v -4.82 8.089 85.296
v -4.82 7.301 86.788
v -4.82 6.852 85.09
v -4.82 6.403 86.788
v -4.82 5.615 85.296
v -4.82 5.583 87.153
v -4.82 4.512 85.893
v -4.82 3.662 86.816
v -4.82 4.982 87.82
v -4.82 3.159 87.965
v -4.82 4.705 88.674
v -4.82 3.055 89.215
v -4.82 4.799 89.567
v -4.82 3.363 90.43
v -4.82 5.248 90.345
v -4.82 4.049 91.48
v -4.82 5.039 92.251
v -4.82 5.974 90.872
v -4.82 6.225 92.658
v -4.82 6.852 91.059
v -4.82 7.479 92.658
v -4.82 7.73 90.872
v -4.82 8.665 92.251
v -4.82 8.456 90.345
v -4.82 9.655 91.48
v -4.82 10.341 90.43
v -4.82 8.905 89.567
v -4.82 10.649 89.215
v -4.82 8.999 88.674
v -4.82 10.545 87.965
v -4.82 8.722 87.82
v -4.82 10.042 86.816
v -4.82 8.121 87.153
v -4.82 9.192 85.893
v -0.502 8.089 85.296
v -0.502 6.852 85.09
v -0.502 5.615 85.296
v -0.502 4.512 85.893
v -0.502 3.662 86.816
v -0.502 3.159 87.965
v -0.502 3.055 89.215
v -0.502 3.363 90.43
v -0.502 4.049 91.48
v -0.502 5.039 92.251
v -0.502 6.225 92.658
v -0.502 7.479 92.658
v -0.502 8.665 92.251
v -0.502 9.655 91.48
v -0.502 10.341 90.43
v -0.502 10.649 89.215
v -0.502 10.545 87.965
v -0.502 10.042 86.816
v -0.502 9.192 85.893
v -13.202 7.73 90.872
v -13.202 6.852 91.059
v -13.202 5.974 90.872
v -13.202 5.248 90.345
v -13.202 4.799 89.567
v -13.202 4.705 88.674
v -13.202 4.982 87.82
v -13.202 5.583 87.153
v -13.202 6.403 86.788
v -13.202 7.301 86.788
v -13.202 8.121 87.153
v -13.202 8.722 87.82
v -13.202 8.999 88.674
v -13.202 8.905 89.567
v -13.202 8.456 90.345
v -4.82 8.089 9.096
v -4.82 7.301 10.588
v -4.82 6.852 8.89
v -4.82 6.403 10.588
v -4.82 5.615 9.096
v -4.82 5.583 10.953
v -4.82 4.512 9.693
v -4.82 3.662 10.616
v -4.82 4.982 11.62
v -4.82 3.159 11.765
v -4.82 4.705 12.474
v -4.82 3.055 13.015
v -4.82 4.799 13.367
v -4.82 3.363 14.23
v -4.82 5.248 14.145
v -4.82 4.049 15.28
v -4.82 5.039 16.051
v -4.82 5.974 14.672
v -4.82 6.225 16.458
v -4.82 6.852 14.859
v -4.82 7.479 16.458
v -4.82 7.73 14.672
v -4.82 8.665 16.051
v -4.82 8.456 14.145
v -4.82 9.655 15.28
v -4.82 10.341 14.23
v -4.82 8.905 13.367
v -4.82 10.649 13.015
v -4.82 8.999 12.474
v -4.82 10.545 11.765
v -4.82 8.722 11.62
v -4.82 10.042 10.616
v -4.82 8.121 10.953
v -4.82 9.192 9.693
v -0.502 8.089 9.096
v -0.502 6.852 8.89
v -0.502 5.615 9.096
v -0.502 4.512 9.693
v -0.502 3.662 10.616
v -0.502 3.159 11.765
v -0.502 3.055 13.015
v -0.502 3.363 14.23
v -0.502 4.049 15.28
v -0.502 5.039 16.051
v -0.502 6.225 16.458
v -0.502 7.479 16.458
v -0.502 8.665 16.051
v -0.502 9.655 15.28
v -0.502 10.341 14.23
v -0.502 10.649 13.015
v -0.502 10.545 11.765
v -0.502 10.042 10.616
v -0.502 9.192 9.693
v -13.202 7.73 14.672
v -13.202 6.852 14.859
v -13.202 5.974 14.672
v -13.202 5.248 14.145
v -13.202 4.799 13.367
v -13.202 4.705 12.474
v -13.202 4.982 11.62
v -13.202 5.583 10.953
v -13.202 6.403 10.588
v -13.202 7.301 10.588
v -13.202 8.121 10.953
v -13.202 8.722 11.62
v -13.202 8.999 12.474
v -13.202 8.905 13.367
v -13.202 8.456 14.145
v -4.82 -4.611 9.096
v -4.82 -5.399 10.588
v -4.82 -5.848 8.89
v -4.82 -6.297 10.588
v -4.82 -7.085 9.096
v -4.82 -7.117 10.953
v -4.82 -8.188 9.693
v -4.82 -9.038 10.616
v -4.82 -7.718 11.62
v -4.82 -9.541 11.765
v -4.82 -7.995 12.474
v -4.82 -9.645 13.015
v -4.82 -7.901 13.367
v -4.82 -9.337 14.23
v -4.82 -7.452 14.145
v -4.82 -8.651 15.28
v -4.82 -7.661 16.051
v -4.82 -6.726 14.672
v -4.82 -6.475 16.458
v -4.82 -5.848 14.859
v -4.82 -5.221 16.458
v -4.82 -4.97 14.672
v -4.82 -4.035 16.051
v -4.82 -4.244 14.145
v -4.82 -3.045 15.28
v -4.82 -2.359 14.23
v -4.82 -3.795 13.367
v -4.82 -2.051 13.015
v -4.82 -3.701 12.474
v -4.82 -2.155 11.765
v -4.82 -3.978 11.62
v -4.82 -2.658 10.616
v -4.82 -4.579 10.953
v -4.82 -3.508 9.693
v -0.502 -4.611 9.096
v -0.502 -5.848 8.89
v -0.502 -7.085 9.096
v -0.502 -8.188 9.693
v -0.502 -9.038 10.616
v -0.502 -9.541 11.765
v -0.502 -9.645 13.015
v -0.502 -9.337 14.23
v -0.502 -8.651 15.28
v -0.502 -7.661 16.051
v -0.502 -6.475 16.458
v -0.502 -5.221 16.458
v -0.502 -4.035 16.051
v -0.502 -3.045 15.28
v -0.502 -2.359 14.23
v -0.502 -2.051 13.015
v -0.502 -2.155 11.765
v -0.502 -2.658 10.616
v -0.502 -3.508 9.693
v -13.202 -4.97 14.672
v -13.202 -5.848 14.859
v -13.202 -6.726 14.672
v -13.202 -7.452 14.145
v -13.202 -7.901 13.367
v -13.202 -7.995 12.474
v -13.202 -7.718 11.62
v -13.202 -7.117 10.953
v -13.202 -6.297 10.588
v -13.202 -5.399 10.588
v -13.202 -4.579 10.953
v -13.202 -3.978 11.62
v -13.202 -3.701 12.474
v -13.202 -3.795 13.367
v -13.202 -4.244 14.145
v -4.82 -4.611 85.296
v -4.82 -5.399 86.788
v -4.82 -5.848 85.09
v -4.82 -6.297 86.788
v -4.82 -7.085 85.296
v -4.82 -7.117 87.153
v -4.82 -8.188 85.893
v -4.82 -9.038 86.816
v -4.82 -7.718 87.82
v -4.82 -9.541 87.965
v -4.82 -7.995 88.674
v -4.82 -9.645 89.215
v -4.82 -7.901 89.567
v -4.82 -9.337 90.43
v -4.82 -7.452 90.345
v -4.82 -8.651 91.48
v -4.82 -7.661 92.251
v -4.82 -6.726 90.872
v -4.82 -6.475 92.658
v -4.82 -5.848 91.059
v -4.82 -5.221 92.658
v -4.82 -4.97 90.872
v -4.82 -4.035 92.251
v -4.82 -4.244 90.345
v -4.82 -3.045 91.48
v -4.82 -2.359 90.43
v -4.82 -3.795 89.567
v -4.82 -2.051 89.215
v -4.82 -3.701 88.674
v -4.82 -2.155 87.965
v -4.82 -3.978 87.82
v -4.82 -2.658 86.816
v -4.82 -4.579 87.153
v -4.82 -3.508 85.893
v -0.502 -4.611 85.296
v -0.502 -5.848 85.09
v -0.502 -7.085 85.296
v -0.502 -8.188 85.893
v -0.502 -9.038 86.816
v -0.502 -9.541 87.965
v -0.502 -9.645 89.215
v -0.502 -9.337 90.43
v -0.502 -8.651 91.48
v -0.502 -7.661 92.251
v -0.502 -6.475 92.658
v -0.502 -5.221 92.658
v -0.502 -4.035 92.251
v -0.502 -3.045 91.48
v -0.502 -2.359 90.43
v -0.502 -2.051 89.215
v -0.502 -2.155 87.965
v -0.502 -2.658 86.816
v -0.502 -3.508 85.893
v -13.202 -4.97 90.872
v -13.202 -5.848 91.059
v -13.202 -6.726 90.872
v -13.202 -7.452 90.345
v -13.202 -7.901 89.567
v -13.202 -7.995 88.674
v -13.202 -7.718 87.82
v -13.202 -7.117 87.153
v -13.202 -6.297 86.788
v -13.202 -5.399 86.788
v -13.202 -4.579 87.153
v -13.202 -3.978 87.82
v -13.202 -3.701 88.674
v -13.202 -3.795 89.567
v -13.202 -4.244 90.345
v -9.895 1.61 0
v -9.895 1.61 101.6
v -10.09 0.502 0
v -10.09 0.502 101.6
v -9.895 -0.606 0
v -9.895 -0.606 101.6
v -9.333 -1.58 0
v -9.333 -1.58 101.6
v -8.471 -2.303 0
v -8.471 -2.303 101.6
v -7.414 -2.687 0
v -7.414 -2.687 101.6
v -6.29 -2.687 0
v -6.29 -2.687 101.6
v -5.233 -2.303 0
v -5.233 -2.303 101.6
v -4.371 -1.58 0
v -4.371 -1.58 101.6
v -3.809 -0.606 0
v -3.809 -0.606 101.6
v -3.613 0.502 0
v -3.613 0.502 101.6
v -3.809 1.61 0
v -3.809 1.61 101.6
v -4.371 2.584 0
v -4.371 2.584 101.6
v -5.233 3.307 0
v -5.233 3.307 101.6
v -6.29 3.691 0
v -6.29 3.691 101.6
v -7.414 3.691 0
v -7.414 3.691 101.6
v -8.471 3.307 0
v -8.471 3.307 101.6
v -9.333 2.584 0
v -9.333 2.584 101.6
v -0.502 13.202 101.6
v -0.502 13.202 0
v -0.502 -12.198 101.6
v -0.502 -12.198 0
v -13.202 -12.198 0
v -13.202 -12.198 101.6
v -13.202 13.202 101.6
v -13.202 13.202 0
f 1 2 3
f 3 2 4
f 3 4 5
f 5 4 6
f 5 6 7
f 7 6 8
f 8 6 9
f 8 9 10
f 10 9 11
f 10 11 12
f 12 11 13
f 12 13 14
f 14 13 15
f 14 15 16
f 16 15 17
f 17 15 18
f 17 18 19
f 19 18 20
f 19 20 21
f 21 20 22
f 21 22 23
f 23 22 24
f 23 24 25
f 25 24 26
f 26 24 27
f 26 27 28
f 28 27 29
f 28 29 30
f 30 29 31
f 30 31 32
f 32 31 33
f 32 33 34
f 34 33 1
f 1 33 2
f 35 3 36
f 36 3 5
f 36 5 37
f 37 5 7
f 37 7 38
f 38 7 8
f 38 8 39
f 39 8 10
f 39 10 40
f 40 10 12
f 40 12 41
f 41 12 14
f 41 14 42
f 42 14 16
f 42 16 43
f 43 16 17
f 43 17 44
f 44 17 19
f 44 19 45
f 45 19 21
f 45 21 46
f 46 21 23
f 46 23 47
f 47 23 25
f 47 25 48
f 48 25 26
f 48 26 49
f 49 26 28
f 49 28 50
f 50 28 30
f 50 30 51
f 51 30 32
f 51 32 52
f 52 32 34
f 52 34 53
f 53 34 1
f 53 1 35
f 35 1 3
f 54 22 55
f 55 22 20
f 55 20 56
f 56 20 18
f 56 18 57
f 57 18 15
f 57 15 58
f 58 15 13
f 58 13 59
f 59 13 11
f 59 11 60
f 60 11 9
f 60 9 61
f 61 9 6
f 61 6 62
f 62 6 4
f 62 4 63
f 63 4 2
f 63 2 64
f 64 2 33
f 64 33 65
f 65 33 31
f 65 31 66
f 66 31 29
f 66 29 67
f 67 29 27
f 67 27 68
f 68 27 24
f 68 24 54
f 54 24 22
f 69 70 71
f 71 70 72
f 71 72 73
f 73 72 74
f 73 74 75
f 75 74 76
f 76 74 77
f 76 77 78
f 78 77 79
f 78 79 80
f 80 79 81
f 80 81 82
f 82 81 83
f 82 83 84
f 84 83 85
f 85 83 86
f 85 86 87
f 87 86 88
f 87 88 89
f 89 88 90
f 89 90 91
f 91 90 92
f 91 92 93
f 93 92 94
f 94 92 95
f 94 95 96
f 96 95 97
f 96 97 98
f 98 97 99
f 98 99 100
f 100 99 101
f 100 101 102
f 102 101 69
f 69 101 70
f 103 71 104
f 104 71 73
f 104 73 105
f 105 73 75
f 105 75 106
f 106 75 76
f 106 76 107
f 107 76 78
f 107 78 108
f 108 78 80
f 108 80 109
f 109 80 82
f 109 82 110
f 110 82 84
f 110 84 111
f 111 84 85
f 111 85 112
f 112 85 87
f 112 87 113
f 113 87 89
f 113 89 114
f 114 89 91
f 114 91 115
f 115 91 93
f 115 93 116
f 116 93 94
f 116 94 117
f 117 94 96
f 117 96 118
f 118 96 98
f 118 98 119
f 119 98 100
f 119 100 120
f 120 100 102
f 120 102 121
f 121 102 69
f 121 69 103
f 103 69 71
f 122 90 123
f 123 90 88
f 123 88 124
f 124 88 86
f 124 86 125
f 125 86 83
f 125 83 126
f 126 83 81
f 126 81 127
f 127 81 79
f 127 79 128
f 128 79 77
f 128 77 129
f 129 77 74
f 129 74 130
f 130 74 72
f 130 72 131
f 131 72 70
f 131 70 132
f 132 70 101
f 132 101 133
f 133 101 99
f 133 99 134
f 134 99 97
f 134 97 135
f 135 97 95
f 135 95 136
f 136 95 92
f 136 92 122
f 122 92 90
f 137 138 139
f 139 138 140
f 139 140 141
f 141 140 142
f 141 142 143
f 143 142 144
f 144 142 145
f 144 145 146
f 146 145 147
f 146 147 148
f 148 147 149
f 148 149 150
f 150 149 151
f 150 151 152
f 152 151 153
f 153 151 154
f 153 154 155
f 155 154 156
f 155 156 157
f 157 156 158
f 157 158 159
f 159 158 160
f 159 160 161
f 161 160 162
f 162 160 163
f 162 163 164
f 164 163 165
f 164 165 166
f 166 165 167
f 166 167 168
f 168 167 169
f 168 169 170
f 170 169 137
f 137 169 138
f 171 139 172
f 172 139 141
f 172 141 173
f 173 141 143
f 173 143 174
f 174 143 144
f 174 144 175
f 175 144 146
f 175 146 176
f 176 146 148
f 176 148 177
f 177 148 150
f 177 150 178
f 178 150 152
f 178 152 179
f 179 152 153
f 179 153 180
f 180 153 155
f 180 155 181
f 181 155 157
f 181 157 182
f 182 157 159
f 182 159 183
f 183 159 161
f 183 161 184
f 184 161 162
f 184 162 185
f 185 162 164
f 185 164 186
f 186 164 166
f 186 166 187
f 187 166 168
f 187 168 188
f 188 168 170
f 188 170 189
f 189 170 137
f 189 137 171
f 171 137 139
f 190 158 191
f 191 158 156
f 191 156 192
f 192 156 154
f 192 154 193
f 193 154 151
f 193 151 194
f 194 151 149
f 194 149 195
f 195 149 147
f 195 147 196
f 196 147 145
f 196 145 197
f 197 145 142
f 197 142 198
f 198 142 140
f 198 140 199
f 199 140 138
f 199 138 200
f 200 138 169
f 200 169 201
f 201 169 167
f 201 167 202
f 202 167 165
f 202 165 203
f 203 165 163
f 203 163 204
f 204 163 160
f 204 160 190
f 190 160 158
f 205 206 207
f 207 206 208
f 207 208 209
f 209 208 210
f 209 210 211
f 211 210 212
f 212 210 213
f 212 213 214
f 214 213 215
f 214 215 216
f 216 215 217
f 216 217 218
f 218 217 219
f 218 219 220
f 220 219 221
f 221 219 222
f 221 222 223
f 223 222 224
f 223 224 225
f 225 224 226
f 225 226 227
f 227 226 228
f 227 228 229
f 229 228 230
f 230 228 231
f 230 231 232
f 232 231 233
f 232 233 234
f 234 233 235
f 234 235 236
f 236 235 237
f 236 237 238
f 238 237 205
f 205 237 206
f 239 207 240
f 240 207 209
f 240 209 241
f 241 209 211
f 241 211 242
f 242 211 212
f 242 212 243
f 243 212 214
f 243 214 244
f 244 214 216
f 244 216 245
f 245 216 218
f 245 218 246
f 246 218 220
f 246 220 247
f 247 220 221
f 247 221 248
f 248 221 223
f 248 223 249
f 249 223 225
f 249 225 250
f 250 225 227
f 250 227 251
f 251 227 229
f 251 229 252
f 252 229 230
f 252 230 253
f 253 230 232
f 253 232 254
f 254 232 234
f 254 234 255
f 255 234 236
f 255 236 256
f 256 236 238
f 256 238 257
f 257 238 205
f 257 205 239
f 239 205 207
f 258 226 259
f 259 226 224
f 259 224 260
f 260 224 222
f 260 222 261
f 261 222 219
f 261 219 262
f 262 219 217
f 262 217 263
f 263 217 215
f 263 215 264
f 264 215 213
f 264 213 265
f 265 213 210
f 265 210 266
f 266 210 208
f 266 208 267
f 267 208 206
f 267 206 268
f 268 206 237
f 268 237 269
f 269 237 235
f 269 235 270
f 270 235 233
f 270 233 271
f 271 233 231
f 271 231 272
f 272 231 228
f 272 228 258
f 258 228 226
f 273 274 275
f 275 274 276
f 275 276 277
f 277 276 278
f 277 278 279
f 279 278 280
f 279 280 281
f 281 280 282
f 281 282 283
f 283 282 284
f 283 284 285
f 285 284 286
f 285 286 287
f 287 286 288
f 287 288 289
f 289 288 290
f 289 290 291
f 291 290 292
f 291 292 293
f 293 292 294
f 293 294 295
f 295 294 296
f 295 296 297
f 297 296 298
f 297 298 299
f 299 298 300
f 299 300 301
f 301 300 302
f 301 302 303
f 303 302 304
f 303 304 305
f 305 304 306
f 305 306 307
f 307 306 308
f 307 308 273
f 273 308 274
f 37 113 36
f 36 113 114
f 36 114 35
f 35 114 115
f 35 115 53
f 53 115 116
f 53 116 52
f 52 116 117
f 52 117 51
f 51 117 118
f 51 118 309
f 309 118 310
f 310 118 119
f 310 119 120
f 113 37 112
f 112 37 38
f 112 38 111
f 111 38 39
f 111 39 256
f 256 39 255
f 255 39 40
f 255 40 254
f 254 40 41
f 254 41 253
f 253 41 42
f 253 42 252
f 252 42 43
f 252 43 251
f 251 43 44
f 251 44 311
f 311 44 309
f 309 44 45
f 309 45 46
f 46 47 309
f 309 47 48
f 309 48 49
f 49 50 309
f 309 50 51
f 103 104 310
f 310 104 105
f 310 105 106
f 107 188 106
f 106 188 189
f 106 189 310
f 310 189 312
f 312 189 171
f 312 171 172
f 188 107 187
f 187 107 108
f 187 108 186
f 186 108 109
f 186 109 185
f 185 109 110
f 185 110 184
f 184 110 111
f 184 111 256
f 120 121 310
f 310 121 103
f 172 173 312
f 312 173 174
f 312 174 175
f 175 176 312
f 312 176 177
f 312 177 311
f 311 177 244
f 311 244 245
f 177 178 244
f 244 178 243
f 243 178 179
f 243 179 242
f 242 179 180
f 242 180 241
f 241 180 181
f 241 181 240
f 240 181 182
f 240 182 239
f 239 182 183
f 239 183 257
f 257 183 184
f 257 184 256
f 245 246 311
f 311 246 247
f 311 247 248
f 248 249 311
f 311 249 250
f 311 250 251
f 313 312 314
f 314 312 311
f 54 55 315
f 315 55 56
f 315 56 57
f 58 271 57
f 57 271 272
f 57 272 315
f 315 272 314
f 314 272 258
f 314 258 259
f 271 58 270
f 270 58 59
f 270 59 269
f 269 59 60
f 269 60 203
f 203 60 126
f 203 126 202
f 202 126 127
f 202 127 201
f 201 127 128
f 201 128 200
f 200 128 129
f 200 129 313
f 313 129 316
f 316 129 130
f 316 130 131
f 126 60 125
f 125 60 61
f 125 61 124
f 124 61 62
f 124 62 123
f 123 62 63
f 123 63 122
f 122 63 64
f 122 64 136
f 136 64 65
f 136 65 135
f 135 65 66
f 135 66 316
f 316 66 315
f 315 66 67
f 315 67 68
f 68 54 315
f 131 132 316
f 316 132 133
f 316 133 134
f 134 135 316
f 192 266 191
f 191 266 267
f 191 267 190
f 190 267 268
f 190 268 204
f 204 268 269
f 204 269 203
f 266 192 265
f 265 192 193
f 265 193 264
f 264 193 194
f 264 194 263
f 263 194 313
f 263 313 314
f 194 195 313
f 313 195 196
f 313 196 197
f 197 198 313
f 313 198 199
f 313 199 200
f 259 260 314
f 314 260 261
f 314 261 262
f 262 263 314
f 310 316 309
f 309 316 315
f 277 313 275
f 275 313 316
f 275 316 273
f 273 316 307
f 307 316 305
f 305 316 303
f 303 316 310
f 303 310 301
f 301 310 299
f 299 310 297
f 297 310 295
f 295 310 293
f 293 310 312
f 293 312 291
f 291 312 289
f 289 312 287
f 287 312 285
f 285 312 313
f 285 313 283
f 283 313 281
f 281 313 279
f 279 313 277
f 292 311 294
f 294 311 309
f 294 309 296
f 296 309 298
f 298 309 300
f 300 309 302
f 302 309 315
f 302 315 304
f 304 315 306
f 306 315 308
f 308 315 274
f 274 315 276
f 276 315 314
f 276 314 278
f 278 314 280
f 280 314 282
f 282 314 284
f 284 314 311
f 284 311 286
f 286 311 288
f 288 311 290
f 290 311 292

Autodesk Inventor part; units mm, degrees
ref_plane "YZ Plane" through (0, 0, 0) normal (1, 0, 0) x (0, 1, 0)
ref_plane "XZ Plane" through (0, 0, 0) normal (0, 1, 0) x (-1, 0, 0)
ref_plane "XY Plane" through (0, 0, 0) normal (0, 0, 1) x (1, 0, 0)
sketch "Sketch1" plane through (0, 0, 0) normal (0, 0, 1) x (1, 0, 0)
  line L0 (-13.202, 13.202) -> (-0.502, 13.202)
  line L1 (-0.502, 13.202) -> (-0.502, -12.198)
  line L2 (-0.502, -12.198) -> (-13.202, -12.198)
  line L3 (-13.202, -12.198) -> (-13.202, 13.202)
  point P0 (0, 0)
  dimension "d0" = 12.7
  dimension "d1" = 25.4
extrude "Extrusion1" add sketch "Sketch1" along normal blind 101.6
sketch "Sketch6" plane through (-0.502, 13.202, 101.6) normal (1, 0, 0) x (0, 0, -1)
  line L0 (101.6, 0) -> (101.6, -25.4) projected
  line L1 (101.6, -25.4) -> (0, -25.4) projected
  line L2 (101.6, 0) -> (101.6, -25.4) projected
  line L3 (101.6, 0) -> (0, 0) projected
  line L4 (0, -25.4) -> (0, 0) projected
  line L5 (0, -25.4) -> (0, 0) projected
  point P0 (101.6, -13.202)
  point P1 (88.9, -6.35)
  point P2 (88.9, -19.05)
  point P3 (101.6, -19.05)
  point P4 (101.6, -6.35)
  point P5 (12.7, -6.35)
  point P6 (12.7, -19.05)
  point P7 (0, -19.05)
  point P8 (0, -6.35)
  dimension "d51" = 12.7
  dimension "d52" = 6.35
  dimension "d53" = 12.7
  dimension "d54" = 6.35
  dimension "d55" = 12.7
  dimension "d56" = 6.35
  dimension "d57" = 12.7
  dimension "d58" = 6.35
sketch "Sketch8" plane through (0, 0, 101.6) normal (0, 0, 1) x (1, 0, 0)
  line L0 (-13.202, 13.202) -> (-13.202, -12.198) projected
  line L1 (-13.202, -12.198) -> (-0.502, -12.198) projected
  point P0 (0, 0)
  point P1 (-6.852, 0.502)
  dimension "d82" = 6.35
  dimension "d84" = 12.7
hole "Hole4" at (-6.852, 0.502, 101.6) direction (0, 0, -1) diameter 6.477 end through all
hole "Hole5" at (-0.502, 6.852, 12.7) at (-0.502, -5.848, 12.7) at (-0.502, 6.852, 88.9) at (-0.502, -5.848, 88.9) direction (-1, 0, 0) diameter 4.318 end through all counterbore diameter 7.62 counterbore depth 4.318
properties part number "BottomOfElevatorFrameMid"
